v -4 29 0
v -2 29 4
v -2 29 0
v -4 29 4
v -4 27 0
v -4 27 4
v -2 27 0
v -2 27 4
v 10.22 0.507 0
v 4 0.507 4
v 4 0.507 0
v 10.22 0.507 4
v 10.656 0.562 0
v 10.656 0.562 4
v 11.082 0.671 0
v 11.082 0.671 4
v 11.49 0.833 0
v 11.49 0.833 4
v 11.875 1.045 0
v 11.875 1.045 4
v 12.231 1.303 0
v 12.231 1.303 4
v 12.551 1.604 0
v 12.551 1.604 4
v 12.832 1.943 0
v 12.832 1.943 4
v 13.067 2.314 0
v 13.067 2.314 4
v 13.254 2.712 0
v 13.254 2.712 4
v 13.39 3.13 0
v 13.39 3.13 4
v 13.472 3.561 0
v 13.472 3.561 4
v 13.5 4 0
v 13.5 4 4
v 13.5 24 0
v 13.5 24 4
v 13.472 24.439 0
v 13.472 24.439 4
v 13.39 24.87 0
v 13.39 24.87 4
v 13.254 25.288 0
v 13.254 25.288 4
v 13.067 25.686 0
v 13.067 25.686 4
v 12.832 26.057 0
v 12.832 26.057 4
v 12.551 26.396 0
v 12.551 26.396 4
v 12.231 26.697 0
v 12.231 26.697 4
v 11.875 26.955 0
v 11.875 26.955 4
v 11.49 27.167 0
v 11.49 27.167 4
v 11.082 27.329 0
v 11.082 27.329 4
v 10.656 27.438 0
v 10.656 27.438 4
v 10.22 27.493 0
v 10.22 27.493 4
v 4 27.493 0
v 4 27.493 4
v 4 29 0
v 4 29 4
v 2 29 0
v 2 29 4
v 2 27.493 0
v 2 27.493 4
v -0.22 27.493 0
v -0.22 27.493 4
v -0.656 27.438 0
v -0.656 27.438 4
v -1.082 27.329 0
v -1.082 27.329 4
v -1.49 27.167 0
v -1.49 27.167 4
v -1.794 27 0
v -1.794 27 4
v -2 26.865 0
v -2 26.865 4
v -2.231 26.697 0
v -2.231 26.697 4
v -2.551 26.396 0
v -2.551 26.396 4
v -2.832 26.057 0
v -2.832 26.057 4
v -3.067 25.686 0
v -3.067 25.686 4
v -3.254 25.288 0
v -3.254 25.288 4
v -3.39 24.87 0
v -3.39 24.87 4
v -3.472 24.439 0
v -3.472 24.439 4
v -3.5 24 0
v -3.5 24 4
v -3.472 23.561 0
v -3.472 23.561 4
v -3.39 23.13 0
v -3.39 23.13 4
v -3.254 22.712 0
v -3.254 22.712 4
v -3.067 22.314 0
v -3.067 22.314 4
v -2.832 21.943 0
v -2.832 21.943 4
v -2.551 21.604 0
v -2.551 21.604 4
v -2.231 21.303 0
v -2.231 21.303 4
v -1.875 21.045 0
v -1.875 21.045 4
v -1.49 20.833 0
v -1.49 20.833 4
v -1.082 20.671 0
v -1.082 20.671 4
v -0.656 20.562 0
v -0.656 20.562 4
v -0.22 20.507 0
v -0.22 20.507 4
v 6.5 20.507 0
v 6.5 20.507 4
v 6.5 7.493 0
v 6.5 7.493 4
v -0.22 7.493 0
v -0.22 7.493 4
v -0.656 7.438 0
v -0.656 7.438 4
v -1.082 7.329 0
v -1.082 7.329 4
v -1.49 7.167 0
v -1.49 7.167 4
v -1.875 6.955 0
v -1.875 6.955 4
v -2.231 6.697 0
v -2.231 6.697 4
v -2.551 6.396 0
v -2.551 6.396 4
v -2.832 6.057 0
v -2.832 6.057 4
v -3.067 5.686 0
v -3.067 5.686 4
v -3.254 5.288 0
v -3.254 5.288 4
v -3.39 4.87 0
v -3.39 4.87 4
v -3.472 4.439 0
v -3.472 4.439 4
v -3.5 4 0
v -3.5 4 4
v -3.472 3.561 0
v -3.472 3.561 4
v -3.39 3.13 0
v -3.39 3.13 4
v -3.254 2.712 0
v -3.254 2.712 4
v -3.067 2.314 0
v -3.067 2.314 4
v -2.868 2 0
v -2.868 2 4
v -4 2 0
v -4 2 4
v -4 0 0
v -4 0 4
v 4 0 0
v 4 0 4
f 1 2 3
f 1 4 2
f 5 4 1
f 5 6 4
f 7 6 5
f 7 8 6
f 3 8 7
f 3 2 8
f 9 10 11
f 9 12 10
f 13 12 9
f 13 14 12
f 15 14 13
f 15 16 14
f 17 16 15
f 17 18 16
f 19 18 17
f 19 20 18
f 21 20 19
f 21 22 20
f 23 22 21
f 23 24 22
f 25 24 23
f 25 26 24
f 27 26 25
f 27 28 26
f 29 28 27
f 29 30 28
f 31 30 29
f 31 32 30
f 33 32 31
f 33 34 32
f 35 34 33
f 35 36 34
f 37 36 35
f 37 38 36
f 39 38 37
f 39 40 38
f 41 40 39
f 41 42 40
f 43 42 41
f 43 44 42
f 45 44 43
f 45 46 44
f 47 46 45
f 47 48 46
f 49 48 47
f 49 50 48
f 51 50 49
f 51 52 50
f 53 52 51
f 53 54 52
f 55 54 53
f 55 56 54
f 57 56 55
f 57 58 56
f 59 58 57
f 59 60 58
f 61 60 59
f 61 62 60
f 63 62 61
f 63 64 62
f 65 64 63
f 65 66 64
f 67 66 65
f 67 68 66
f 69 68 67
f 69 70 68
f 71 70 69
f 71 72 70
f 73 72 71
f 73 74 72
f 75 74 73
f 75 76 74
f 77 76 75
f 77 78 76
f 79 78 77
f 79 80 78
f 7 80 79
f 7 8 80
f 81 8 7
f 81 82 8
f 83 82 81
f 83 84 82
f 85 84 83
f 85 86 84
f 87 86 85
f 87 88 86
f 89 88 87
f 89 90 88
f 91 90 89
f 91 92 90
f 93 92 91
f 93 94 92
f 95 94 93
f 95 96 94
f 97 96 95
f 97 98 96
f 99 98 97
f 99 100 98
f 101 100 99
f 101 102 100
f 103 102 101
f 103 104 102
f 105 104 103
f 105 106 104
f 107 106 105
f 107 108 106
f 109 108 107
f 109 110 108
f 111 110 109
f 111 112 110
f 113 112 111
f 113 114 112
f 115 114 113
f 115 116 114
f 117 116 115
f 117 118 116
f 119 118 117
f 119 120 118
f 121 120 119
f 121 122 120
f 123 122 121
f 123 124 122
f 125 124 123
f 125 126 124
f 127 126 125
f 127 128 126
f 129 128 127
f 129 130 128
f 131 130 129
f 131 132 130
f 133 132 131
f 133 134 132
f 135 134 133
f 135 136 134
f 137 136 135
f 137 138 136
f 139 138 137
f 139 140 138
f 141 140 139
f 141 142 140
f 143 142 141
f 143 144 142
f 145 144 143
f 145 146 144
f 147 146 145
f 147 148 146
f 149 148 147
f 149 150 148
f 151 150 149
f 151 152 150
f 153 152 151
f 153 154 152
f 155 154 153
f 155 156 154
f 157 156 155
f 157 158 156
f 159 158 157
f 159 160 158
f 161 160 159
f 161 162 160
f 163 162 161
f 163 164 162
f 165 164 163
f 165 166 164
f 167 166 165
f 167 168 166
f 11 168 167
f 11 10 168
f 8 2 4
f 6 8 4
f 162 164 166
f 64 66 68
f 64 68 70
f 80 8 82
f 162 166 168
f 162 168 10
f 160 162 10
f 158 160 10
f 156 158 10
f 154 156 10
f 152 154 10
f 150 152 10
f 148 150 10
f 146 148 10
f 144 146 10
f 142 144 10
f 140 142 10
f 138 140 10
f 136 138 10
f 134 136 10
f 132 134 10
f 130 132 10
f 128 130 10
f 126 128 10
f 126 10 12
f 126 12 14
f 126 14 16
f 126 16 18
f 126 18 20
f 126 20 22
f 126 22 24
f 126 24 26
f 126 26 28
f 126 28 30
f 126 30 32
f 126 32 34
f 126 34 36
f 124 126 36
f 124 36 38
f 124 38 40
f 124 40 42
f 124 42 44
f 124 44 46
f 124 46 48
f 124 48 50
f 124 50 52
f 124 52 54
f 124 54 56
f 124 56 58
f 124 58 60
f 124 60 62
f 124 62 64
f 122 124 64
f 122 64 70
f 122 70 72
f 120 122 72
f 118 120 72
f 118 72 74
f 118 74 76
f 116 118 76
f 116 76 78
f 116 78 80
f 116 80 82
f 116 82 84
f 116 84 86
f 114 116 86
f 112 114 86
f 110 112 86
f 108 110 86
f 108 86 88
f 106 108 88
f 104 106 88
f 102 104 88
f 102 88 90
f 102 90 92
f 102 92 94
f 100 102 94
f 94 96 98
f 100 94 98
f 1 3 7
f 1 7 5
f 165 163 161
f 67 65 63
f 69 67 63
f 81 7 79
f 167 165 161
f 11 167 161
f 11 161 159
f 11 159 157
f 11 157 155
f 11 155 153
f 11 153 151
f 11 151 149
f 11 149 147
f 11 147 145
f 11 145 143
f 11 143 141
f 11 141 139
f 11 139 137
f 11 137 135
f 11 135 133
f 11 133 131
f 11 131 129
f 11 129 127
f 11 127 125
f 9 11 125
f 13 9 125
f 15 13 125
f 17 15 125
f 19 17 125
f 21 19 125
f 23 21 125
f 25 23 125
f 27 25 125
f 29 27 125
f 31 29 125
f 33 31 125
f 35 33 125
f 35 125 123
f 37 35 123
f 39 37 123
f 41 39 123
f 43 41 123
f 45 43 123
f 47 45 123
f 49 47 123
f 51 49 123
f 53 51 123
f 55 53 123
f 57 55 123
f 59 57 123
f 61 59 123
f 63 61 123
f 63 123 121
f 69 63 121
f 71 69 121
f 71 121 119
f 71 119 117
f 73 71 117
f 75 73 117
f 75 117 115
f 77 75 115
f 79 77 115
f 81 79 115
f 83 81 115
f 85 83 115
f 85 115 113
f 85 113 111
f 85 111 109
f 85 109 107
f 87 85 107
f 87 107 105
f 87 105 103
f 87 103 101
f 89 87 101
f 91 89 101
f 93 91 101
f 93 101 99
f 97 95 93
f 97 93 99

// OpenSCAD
// ====================================================================
// [OPTION B] C-Hanger Arm with T-Slot Slide & Lock Flanges
// Zero Flex Required! Solid 100% rigid T-flanges at top and bottom.
// - Top T-head slides into Carriage (04) T-slot.
// - Bottom T-head slides into Gondola Roof (01) T-slot.
// ZERO PEGS, ZERO PINS, ZERO HARDWARE!
// ====================================================================

$fn = 50;

hanger_height = 24.0;
hanger_offset = 10.0;
hanger_th     = 4.0;
thead_w       = 8.0; // T-head width
tstem_w       = 4.0; // T-stem neck width

module hanger_arm_tslot_2d() {
    union() {
        // Bottom T-Head Flange
        polygon([
            [-thead_w/2, 0],
            [-thead_w/2, 2.0],
            [-tstem_w/2, 2.0],
            [-tstem_w/2, 5.0],
            [tstem_w/2, 5.0],
            [tstem_w/2, 2.0],
            [thead_w/2, 2.0],
            [thead_w/2, 0]
        ]);

        // Lower horizontal bridge
        hull() {
            translate([0, 4.0]) circle(d = 7.0);
            translate([hanger_offset, 4.0]) circle(d = 7.0);
        }
        // Vertical C-stem
        hull() {
            translate([hanger_offset, 4.0]) circle(d = 7.0);
            translate([hanger_offset, hanger_height]) circle(d = 7.0);
        }
        // Top horizontal bridge
        hull() {
            translate([hanger_offset, hanger_height]) circle(d = 7.0);
            translate([0, hanger_height]) circle(d = 7.0);
        }

        // Top T-Head Flange
        translate([0, hanger_height])
            polygon([
                [-thead_w/2, 3.0],
                [-thead_w/2, 5.0],
                [-tstem_w/2, 5.0],
                [-tstem_w/2, 0],
                [tstem_w/2, 0],
                [tstem_w/2, 5.0],
                [thead_w/2, 5.0],
                [thead_w/2, 3.0]
            ]);
    }
}

module hanger_arm_tslot_print() {
    linear_extrude(height = hanger_th)
        hanger_arm_tslot_2d();
}

// Render flat on bed at Z = 0
hanger_arm_tslot_print();
